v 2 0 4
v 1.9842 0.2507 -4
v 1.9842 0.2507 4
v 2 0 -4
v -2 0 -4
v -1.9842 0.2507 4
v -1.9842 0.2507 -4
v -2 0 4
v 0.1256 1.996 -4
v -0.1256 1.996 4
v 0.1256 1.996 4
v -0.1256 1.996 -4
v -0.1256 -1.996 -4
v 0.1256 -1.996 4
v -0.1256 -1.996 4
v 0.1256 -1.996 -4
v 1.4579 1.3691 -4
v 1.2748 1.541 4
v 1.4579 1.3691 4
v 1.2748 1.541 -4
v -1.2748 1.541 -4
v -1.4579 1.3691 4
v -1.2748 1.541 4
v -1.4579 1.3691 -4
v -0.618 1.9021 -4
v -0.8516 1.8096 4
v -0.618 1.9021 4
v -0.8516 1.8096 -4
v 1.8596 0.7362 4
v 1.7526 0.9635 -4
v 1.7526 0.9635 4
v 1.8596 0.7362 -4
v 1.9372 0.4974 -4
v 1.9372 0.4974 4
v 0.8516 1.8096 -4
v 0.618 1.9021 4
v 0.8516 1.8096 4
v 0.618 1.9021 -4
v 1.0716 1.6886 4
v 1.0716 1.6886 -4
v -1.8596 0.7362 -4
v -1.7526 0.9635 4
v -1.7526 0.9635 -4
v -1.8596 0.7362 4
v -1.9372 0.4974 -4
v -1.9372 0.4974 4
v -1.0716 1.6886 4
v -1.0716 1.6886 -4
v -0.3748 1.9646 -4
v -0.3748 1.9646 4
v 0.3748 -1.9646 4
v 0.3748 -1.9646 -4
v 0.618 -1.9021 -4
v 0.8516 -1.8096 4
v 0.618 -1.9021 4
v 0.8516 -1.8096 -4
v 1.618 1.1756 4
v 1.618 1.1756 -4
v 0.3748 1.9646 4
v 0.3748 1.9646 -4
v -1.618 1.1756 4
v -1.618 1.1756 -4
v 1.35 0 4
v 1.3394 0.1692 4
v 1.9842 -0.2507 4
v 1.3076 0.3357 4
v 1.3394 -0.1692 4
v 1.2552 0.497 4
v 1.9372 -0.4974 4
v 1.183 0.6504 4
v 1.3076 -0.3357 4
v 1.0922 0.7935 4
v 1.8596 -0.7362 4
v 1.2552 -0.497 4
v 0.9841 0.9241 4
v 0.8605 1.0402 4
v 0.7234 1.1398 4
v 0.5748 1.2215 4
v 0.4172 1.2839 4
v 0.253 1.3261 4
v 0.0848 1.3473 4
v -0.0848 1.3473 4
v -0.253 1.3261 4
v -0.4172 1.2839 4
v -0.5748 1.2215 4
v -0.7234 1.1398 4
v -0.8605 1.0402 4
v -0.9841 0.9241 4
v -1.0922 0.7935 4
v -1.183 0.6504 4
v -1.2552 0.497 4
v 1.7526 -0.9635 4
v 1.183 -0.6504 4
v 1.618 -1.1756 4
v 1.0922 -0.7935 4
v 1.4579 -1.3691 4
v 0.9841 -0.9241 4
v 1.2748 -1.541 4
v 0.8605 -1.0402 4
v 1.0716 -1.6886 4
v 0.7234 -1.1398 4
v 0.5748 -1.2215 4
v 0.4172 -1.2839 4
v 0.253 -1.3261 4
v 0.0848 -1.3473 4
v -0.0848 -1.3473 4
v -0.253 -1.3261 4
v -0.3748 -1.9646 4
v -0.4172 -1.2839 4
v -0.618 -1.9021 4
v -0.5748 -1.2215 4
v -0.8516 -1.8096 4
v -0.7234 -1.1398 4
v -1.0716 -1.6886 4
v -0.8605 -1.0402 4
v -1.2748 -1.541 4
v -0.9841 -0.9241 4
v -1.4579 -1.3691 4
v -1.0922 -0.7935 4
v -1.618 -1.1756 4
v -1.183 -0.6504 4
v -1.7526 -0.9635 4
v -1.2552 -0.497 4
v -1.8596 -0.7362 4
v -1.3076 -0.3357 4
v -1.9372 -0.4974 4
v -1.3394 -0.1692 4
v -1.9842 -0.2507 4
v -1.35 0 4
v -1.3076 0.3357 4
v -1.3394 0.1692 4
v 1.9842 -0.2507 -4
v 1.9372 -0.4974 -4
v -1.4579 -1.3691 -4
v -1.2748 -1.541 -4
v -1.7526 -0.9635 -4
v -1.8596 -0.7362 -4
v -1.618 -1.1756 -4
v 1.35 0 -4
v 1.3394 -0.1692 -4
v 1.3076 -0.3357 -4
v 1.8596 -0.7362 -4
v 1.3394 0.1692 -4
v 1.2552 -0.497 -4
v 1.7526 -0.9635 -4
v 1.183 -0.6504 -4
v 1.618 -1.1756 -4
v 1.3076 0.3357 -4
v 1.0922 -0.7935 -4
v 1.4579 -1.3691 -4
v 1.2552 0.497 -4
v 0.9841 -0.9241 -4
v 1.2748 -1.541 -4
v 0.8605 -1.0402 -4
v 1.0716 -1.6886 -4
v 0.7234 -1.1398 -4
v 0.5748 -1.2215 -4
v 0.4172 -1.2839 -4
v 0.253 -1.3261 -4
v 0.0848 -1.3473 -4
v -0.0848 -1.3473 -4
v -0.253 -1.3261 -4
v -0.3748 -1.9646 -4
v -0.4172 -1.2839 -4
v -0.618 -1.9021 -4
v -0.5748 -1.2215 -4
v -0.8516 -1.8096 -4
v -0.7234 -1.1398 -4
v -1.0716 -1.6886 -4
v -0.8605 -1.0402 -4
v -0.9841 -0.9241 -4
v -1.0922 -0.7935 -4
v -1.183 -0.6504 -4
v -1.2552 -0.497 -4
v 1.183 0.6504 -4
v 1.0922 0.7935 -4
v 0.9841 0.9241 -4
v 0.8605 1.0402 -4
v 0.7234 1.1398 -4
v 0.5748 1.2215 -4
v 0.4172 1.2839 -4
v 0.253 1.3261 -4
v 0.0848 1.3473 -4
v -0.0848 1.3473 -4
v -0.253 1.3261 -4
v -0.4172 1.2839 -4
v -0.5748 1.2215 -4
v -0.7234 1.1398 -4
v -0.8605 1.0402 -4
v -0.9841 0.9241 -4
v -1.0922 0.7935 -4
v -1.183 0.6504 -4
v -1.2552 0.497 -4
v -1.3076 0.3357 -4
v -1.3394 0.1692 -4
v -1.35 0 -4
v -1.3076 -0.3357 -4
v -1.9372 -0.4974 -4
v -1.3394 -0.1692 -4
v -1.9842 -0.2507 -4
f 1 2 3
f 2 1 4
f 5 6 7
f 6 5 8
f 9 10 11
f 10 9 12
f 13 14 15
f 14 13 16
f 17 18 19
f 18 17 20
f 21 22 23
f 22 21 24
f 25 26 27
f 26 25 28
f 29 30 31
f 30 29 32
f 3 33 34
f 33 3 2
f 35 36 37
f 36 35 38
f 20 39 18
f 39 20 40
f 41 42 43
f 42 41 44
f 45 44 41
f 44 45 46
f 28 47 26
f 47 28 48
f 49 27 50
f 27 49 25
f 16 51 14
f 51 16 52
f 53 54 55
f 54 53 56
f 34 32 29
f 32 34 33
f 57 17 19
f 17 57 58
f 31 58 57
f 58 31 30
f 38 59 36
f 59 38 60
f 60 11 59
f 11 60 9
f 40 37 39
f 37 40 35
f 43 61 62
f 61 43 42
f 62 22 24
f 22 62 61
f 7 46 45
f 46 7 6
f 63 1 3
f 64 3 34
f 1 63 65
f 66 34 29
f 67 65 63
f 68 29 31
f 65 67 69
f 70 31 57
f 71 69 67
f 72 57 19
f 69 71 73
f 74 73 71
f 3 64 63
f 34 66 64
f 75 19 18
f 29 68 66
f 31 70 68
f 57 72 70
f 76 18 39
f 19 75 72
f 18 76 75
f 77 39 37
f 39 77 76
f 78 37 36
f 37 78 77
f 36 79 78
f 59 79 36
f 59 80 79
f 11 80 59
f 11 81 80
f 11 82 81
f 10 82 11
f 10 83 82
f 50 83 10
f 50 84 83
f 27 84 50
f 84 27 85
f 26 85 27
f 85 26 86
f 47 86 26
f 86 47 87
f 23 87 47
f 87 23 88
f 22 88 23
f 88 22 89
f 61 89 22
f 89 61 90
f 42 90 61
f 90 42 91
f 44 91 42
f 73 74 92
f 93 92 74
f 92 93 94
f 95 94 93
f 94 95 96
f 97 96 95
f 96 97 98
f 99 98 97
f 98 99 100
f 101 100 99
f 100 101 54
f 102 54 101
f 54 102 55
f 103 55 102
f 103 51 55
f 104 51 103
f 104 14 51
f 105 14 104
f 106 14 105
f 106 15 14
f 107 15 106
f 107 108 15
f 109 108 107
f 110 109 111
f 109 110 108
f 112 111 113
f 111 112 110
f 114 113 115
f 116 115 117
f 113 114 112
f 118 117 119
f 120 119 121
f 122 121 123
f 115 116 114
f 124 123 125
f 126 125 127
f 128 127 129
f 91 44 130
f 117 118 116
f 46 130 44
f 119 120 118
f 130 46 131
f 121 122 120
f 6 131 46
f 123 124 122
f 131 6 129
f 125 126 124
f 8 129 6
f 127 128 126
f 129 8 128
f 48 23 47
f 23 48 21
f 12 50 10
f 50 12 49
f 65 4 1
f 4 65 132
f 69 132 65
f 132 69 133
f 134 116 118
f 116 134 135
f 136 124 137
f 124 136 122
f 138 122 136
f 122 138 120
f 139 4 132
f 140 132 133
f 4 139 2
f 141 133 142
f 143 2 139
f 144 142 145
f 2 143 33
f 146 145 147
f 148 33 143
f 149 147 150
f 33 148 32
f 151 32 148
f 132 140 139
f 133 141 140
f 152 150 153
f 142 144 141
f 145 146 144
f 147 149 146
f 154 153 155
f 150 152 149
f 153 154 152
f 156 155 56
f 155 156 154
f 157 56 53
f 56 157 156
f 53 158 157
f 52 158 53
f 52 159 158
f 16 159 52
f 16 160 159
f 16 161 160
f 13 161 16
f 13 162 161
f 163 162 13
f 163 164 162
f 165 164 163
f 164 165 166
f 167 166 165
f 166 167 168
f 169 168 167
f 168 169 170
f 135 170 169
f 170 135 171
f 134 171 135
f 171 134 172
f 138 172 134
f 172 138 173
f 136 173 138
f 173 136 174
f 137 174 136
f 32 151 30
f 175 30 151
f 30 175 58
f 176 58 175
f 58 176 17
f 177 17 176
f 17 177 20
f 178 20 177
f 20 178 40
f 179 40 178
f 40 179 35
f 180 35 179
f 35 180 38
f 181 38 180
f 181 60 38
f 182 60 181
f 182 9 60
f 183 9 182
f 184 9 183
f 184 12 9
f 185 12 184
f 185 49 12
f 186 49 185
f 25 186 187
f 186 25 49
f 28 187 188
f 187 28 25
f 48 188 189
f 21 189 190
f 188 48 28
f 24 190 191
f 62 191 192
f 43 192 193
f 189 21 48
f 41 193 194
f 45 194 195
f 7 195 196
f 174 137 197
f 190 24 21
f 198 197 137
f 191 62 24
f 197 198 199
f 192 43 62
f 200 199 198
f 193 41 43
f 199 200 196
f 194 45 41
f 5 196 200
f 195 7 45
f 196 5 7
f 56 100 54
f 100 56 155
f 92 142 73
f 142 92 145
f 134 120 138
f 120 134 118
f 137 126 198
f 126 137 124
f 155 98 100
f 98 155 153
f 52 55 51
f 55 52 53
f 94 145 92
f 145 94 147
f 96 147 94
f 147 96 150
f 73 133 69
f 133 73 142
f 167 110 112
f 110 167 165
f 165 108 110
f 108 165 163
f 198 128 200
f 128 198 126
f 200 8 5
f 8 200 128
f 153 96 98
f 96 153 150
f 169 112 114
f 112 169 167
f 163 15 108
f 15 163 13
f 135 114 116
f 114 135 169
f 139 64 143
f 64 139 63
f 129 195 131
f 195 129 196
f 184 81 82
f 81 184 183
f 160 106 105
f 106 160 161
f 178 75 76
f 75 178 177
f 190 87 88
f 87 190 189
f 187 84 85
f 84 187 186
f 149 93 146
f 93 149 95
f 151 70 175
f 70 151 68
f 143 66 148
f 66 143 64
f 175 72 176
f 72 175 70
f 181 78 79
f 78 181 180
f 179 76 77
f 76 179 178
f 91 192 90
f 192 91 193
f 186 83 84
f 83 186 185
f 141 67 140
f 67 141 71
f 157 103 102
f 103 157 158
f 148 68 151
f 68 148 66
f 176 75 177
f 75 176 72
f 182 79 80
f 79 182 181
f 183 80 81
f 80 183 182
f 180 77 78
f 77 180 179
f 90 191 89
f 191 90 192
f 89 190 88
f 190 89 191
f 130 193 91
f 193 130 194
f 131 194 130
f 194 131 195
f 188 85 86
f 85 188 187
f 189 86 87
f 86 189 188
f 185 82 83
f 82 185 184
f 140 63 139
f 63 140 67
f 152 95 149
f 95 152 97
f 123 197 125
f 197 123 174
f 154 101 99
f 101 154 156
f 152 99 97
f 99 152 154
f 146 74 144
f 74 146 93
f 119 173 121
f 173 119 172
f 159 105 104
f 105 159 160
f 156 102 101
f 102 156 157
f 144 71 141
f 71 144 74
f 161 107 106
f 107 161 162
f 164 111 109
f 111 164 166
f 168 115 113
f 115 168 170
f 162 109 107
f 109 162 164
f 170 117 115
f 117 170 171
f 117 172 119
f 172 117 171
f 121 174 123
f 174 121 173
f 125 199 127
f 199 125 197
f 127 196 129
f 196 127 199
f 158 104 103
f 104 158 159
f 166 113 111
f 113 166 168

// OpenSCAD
$fn = 50;


difference() {
	union() {
		translate(v = [0, 0, -4.0000000000]) {
			cylinder(h = 8, r = 2.0000000000);
		}
	}
	union() {
		translate(v = [0, 0, -100.0000000000]) {
			cylinder(h = 200, r = 1.3500000000);
		}
	}
}
